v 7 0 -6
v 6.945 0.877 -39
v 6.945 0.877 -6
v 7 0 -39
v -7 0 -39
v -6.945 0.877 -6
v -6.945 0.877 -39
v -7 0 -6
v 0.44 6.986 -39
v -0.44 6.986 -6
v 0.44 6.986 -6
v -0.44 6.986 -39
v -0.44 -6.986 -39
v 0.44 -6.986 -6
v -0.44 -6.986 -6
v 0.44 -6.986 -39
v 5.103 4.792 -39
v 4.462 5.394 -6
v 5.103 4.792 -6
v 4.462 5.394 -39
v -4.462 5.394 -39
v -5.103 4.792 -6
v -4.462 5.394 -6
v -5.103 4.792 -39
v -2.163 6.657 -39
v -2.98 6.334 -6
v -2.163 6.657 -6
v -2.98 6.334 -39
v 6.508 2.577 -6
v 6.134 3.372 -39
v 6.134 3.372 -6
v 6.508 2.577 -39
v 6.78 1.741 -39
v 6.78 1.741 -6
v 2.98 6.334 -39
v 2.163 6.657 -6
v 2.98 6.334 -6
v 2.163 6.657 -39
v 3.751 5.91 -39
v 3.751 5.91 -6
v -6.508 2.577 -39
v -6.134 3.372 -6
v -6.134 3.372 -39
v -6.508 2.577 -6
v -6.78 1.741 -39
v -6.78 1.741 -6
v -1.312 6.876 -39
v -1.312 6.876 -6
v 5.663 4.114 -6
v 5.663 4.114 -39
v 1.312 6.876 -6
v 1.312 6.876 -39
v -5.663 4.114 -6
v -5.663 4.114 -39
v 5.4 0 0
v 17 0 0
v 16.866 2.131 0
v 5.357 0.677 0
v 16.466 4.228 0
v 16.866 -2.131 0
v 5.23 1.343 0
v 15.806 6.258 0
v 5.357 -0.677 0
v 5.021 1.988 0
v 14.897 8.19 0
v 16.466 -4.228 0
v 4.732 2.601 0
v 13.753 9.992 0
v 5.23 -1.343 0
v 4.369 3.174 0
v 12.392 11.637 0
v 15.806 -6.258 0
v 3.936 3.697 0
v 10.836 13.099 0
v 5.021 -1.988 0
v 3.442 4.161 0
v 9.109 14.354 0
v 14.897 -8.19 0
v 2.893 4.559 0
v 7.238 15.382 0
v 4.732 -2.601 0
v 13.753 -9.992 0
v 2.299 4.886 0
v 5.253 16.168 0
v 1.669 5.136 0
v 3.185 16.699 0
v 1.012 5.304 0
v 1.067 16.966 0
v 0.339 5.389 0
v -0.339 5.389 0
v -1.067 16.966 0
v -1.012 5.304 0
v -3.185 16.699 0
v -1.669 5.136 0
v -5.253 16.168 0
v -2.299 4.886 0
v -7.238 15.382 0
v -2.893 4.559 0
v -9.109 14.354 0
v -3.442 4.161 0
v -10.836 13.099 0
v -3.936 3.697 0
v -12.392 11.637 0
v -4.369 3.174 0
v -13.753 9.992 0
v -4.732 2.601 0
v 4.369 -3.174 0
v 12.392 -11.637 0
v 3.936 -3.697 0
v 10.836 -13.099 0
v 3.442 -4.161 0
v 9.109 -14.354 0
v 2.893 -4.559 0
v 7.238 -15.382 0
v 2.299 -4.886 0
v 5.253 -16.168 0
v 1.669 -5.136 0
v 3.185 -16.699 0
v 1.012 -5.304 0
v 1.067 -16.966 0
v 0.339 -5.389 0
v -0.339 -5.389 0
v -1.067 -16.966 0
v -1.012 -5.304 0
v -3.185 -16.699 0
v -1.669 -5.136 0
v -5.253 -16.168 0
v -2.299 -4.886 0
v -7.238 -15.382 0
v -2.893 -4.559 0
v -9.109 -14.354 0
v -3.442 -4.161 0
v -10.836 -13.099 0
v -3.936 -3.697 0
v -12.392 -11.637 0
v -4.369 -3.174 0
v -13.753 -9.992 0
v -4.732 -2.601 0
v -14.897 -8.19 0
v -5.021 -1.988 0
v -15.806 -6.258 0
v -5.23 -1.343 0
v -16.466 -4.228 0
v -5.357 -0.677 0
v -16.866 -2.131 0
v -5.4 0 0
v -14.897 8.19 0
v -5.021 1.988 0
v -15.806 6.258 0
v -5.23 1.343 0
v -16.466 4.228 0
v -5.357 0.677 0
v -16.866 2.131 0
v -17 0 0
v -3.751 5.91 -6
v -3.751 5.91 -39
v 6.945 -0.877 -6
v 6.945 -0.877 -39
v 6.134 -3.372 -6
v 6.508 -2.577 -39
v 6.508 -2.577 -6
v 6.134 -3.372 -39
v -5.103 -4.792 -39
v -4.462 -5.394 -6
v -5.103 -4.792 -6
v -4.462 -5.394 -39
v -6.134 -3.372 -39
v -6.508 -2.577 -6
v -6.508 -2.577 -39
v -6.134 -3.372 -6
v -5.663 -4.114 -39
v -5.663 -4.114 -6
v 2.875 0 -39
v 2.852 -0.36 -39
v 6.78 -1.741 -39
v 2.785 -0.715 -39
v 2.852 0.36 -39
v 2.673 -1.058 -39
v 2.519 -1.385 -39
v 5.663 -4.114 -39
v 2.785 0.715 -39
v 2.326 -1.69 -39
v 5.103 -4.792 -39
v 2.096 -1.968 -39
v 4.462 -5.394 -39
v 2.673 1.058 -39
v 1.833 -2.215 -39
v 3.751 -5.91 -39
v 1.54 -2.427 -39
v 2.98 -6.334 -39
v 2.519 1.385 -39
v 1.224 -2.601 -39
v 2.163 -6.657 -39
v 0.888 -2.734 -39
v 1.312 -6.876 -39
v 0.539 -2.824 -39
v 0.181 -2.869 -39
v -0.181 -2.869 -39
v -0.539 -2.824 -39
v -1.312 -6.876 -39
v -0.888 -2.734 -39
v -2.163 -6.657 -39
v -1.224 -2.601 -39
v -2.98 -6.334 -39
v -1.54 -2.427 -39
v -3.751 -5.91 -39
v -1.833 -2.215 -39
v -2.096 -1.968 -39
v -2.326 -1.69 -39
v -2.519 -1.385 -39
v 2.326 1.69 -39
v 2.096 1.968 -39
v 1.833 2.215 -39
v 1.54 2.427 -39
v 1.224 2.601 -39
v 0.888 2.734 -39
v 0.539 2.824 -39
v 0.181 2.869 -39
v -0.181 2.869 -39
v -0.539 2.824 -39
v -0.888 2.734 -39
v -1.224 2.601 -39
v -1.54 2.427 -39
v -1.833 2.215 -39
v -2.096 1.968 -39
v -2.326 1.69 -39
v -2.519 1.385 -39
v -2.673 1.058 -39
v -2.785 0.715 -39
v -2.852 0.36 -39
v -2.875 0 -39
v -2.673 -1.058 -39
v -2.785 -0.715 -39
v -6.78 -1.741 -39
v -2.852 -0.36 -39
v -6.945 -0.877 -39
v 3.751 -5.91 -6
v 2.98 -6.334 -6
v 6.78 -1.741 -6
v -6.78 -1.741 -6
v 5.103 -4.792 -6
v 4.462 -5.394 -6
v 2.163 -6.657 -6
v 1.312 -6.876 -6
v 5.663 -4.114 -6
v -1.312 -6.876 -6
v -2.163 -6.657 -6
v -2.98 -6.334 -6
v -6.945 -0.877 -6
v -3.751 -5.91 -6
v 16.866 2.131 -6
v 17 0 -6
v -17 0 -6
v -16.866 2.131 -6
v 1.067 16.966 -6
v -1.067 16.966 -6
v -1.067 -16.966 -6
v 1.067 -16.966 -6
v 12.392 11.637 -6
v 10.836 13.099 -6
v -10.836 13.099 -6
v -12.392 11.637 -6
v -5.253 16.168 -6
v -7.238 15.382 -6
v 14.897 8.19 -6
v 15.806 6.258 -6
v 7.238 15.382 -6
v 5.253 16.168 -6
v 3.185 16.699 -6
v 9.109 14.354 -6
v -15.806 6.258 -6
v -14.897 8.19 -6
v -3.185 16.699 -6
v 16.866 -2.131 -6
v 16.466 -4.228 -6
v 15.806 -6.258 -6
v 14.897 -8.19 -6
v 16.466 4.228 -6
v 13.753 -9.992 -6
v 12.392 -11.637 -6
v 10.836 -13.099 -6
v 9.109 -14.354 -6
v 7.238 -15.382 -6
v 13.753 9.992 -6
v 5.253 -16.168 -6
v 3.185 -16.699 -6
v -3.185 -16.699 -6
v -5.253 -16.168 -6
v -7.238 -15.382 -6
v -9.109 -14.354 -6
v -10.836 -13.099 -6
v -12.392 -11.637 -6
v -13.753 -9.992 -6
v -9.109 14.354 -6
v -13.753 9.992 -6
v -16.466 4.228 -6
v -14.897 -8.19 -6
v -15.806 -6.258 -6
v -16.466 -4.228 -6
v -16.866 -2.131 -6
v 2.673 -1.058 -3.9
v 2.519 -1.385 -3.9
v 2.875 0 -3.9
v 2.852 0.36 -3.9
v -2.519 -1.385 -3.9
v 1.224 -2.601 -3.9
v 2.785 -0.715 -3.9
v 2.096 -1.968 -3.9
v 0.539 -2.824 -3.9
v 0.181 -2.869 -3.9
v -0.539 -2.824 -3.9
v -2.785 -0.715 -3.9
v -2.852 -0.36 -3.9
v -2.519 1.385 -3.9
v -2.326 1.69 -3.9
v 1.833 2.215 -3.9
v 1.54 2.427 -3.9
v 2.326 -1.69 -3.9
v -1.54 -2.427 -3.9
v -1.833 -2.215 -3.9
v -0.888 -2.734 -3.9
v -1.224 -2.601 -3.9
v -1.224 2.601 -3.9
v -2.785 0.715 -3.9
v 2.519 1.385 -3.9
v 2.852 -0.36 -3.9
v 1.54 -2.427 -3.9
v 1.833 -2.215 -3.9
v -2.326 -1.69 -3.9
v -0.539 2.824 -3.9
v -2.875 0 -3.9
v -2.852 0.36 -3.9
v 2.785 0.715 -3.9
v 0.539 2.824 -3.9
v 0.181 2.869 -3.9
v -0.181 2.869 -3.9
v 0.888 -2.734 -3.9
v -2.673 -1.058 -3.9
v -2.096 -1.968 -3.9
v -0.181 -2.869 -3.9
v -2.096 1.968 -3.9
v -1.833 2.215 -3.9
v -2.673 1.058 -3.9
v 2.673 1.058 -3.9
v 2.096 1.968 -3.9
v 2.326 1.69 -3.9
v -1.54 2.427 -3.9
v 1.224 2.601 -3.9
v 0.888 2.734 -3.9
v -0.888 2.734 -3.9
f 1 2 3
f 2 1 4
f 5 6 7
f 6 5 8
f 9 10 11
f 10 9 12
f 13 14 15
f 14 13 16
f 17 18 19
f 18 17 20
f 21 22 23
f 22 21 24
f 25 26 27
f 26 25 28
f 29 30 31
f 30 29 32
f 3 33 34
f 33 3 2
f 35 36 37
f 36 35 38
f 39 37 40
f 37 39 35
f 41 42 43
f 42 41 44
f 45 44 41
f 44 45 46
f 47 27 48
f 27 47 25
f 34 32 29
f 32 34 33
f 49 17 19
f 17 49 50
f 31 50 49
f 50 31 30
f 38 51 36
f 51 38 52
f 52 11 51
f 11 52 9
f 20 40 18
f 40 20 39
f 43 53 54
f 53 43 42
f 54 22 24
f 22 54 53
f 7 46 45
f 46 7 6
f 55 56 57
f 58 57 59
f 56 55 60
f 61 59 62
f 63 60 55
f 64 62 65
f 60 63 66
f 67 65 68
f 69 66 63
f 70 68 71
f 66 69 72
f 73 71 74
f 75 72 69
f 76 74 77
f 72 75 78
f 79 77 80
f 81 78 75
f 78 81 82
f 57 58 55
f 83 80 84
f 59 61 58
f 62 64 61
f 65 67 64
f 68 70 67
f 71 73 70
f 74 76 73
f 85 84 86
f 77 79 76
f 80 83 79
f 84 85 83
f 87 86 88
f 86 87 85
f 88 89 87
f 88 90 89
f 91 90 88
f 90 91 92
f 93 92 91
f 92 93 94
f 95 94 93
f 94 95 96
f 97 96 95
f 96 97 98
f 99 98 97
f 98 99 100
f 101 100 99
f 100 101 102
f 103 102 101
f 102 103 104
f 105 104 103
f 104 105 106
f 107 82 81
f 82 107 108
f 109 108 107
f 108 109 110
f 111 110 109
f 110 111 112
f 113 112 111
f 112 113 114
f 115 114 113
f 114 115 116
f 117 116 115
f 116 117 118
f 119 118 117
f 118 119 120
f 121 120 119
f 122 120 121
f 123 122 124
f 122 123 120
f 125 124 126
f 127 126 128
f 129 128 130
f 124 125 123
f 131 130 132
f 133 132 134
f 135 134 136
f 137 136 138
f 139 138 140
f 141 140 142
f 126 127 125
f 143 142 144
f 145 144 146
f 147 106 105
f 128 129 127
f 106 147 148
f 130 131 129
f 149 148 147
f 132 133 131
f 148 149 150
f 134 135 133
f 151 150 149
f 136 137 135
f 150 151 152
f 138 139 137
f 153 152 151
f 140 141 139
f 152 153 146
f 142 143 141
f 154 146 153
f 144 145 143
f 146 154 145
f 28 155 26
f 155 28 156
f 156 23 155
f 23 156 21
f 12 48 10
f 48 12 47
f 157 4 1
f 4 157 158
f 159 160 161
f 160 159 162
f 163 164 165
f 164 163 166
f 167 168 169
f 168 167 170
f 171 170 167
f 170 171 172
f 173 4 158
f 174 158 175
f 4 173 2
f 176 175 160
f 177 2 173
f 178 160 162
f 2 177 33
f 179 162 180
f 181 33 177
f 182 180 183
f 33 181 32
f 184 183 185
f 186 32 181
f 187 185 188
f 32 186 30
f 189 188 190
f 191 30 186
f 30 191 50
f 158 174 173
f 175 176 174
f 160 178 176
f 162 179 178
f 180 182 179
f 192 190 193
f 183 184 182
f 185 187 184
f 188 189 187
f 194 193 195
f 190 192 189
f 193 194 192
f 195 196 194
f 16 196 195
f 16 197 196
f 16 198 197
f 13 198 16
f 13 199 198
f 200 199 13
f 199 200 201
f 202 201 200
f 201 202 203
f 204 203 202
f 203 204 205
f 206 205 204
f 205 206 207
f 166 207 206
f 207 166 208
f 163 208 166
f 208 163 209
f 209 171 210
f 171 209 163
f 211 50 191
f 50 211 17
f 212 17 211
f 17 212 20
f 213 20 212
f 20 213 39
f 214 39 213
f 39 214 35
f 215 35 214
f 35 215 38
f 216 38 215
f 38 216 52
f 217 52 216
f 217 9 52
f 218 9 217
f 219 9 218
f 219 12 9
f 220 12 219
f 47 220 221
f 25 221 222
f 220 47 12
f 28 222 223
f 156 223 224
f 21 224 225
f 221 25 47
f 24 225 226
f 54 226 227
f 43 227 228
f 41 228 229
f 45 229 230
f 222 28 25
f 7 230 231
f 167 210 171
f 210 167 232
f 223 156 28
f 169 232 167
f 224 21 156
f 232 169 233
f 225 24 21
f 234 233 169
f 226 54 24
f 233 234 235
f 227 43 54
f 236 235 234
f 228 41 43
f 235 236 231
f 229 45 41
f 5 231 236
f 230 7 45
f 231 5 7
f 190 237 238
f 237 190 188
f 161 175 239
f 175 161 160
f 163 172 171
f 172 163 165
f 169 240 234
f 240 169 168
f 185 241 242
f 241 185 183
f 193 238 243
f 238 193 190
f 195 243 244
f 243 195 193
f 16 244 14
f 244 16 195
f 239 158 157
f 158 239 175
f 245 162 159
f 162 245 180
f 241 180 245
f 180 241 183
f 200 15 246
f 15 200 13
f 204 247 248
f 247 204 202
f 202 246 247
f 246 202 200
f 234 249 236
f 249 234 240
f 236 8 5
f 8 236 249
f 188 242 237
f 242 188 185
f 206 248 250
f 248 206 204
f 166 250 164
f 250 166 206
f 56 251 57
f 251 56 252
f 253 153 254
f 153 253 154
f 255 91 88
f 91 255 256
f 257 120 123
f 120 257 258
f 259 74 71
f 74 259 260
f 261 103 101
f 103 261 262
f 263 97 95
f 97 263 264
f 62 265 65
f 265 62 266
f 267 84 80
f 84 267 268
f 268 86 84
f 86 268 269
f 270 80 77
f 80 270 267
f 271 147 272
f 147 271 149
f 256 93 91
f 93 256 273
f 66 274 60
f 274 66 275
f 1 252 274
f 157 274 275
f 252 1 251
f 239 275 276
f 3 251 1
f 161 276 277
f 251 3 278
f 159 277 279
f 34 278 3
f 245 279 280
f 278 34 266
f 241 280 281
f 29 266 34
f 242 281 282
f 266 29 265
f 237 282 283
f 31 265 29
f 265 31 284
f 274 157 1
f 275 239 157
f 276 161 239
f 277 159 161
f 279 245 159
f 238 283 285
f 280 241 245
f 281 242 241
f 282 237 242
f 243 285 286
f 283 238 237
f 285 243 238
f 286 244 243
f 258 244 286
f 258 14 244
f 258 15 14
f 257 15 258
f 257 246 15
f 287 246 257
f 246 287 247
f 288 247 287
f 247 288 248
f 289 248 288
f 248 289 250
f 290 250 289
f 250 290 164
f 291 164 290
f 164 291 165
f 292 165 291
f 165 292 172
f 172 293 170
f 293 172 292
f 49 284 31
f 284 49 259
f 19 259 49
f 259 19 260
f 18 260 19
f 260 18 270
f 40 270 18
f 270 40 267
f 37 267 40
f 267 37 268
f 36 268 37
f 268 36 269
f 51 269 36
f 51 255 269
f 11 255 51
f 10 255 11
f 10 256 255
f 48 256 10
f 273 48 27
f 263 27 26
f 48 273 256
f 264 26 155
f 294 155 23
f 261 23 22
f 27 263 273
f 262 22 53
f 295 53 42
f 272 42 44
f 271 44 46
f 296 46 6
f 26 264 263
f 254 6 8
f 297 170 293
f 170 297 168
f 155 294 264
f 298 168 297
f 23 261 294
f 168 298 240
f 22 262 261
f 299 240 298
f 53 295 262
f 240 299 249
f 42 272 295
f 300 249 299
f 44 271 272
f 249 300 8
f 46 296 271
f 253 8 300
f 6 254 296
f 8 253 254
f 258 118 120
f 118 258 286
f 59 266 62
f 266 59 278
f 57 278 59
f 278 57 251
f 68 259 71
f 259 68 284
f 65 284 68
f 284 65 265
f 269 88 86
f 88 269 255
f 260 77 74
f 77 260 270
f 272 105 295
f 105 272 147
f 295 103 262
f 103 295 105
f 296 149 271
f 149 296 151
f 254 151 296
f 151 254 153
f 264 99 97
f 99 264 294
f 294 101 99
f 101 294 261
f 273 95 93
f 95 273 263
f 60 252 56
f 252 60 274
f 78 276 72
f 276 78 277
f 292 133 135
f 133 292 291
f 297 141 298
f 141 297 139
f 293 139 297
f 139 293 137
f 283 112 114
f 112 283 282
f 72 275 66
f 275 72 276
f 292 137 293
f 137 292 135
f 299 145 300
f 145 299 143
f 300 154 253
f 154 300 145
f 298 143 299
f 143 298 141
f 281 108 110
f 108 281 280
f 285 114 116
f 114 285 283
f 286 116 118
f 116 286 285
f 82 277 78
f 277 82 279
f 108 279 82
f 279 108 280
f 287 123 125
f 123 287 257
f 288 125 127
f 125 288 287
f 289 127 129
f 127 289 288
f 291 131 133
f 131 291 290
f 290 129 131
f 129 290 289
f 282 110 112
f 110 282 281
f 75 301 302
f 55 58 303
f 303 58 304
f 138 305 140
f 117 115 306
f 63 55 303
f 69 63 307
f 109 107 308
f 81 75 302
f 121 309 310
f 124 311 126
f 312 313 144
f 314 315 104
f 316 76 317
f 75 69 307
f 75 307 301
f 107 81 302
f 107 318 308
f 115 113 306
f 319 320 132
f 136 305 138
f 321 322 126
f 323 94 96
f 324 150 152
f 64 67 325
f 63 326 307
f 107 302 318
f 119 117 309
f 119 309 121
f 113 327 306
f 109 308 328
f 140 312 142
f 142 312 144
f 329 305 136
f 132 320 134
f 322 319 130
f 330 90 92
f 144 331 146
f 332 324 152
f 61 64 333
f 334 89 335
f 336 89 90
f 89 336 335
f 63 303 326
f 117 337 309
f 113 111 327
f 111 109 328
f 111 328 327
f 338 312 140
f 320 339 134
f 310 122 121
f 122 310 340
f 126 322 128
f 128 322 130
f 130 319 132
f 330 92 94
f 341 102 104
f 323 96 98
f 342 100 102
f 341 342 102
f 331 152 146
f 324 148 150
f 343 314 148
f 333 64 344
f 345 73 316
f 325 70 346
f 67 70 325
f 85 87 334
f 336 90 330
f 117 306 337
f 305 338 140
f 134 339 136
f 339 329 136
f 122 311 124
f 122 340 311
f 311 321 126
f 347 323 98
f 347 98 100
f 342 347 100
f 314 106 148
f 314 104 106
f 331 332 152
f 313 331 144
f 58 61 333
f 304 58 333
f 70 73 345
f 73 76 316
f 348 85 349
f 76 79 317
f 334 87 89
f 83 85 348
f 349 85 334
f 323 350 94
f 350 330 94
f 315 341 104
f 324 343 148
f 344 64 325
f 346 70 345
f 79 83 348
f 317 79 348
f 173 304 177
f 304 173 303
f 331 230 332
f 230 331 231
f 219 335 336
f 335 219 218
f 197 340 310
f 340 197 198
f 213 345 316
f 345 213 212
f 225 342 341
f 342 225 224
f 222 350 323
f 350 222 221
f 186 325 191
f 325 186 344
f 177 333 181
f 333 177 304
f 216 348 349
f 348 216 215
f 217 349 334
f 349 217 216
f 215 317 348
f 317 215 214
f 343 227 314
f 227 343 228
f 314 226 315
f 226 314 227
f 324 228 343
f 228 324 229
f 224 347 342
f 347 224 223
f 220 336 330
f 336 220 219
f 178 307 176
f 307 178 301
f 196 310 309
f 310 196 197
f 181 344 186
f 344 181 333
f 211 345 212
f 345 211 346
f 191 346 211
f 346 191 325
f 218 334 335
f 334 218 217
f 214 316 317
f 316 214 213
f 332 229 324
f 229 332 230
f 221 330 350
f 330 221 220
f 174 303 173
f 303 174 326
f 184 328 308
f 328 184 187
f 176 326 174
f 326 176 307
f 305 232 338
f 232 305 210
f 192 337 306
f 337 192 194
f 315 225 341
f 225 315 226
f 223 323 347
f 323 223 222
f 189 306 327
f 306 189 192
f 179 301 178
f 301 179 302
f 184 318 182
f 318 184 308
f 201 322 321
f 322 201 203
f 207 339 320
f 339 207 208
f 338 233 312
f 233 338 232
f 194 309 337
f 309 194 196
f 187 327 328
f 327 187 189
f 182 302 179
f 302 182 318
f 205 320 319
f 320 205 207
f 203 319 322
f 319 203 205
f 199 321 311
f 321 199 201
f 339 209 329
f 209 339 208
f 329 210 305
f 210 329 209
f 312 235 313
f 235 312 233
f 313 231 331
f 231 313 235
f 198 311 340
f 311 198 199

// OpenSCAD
$fn = 50;


difference() {
	union() {
		translate(v = [0, 0, -39.0000000000]) {
			cylinder(h = 39, r = 7.0000000000);
		}
		translate(v = [0, 0, -6.0000000000]) {
			cylinder(h = 6, r = 17.0000000000);
		}
	}
	union() {
		translate(v = [0, 0, 0]) {
			rotate(a = [0, 0, 0]) {
				difference() {
					union() {
						#translate(v = [0, 0, -39.0000000000]) {
							cylinder(h = 39, r = 2.6000000000);
						}
						#translate(v = [0, 0, -3.9000000000]) {
							cylinder(h = 3.9000000000, r1 = 2.8750000000, r2 = 5.4000000000);
						}
						#translate(v = [0, 0, -39.0000000000]) {
							cylinder(h = 39, r = 2.8750000000);
						}
						#translate(v = [0, 0, -39.0000000000]) {
							cylinder(h = 39, r = 2.6000000000);
						}
					}
					union();
				}
			}
		}
	}
}
